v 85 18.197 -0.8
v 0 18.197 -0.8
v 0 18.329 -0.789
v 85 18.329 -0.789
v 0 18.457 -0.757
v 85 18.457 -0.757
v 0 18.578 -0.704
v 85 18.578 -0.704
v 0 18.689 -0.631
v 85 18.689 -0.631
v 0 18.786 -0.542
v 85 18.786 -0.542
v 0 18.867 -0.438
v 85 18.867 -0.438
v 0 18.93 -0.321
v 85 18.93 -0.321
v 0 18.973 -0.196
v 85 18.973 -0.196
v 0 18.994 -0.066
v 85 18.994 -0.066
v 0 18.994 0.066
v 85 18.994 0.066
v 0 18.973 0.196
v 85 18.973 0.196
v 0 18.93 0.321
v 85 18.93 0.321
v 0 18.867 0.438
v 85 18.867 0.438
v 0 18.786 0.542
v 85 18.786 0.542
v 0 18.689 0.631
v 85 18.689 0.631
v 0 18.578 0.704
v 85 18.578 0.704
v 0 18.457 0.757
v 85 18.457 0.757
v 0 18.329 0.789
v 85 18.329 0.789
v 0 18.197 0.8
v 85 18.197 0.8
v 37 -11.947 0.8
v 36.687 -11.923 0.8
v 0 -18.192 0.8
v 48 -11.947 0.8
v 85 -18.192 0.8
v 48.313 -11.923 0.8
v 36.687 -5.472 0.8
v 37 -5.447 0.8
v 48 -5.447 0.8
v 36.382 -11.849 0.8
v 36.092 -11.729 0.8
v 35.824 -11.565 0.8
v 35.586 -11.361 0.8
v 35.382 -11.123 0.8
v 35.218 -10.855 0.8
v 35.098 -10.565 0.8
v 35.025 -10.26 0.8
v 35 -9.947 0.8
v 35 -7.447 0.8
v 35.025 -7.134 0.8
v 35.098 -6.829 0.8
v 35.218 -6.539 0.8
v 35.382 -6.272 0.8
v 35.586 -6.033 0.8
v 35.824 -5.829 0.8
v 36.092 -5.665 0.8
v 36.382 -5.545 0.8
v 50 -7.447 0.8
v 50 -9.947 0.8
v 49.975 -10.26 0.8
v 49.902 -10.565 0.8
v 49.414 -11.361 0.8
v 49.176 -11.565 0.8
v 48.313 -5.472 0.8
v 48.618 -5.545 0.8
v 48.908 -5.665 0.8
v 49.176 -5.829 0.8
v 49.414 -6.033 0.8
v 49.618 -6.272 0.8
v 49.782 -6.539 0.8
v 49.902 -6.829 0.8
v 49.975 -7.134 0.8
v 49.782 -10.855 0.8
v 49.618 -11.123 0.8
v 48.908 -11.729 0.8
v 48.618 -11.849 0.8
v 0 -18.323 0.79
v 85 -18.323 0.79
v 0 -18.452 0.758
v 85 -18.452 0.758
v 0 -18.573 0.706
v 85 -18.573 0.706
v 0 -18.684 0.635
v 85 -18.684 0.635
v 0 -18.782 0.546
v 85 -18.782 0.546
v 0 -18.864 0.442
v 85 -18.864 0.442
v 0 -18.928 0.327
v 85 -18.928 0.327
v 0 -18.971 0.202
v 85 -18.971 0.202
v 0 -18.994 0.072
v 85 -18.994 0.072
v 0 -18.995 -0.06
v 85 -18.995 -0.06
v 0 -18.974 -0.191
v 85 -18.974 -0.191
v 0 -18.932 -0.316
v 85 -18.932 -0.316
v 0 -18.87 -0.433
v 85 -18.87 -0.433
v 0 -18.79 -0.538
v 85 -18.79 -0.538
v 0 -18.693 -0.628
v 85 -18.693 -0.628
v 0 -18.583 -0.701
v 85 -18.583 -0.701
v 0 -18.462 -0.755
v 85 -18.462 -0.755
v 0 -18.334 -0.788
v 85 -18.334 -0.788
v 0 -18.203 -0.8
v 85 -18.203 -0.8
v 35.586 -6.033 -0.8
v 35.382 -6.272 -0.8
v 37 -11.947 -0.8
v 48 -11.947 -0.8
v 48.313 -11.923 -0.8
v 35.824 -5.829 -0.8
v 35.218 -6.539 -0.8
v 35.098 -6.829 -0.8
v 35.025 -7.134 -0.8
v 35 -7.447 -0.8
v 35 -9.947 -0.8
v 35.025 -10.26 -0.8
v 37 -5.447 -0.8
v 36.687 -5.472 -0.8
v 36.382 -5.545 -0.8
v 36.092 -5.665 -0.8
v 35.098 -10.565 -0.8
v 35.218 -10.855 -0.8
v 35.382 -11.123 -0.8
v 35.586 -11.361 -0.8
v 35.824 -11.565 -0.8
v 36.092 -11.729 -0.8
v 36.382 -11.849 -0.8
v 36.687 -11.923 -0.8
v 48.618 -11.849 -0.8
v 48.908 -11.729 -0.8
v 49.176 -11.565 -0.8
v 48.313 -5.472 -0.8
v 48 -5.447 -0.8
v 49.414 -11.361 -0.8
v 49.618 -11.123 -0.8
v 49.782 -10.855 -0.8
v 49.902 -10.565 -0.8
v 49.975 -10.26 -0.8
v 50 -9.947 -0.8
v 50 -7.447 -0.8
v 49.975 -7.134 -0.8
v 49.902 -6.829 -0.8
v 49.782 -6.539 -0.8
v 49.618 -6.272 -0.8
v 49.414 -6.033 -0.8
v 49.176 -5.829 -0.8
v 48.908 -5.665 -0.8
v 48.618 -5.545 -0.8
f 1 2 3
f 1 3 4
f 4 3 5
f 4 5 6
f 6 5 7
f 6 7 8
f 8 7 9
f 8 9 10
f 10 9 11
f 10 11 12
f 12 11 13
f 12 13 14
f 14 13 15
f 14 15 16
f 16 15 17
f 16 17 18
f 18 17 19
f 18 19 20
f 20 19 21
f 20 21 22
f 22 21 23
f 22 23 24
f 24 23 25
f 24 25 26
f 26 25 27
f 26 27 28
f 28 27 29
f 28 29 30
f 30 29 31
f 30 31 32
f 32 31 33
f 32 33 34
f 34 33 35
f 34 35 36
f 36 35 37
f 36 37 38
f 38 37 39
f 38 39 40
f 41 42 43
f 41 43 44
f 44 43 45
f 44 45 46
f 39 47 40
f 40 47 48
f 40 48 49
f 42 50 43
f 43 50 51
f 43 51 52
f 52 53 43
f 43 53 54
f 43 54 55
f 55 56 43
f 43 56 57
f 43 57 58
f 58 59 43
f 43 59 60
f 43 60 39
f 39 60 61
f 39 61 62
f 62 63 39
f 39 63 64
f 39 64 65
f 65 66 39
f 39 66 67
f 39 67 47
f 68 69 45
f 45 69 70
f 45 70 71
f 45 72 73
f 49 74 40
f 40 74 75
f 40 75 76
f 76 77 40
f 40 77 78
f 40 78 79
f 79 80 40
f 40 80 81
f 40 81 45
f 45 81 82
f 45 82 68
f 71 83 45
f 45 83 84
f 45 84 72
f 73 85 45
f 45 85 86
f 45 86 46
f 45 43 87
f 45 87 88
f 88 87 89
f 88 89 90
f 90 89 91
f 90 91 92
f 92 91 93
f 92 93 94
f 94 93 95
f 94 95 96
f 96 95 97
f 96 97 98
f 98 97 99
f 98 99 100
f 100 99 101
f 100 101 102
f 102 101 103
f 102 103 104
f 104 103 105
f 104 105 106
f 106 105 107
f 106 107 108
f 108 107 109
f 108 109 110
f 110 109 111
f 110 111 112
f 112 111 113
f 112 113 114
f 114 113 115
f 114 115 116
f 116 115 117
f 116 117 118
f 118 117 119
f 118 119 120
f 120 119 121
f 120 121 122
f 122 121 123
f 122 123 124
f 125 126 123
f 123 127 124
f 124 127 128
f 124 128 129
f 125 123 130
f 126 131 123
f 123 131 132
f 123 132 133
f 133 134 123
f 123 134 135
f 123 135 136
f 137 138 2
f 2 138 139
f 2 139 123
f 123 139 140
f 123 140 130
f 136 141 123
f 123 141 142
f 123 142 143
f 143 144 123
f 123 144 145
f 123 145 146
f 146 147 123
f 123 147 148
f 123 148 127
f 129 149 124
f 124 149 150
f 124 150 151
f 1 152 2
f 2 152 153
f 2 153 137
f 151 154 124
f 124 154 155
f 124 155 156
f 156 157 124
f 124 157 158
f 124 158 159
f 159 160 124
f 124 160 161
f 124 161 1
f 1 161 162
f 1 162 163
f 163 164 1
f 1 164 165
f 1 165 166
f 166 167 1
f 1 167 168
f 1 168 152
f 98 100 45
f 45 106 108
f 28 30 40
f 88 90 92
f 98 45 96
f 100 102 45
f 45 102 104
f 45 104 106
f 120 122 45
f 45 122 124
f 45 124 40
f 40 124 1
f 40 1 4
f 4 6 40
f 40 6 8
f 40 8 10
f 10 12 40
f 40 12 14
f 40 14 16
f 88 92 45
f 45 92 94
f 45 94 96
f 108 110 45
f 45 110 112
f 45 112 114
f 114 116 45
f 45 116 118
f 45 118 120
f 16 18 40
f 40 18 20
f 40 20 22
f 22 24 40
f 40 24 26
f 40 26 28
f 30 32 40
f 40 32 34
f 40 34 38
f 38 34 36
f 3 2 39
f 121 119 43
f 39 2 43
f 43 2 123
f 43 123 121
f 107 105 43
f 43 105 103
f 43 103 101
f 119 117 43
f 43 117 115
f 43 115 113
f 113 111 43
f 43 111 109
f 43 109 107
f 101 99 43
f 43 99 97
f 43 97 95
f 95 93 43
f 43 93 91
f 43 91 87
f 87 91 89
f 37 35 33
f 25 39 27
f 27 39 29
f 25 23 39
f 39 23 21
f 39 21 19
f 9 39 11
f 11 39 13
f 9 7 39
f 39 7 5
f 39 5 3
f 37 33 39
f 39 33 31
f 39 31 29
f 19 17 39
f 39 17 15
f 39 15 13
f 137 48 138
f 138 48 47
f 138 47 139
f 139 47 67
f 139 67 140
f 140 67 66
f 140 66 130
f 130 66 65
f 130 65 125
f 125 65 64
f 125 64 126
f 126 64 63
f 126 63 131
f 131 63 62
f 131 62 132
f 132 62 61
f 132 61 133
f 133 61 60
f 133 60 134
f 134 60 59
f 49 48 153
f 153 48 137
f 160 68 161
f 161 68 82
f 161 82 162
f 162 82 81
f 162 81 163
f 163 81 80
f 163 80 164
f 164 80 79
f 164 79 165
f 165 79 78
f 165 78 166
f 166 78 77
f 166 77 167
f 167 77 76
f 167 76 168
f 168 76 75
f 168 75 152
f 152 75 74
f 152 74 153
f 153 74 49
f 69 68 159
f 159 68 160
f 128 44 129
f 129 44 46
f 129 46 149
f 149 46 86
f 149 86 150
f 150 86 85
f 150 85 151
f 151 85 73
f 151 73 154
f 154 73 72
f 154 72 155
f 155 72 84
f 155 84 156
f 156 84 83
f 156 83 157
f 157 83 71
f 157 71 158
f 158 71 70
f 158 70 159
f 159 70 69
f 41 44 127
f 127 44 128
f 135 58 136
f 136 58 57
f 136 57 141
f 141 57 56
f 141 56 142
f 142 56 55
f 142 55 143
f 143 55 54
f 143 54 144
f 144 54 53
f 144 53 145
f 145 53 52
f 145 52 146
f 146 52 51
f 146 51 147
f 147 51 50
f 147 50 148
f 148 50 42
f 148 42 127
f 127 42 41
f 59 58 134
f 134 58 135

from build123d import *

# Parameters (mm, degrees)
BOSS_EXTRUDE1_DEPTH = 85
CUT_EXTRUDE1_REACH  = 3.6


with BuildPart() as part:
    # Sketch1 → Boss-Extrude1 (new body)
    with BuildSketch(Plane(origin=(0, 0, 0), x_dir=(0, 0, -1), z_dir=(1, 0, 0))):
        with BuildLine():
            Line((0.800009932, 17.208466352), (0.800009932, -18.202808875))
            ThreePointArc((0.800009932, -18.202808875), (-0.005627681, -18.997171261), (-0.799990068, -18.191533648))
            Line((-0.799990068, -18.191533648), (-0.799990068, 18.197191125))
            ThreePointArc((-0.799990068, 18.197191125), (9.932e-06, 18.997191125), (0.800009932, 18.197191125))
            Line((0.800009932, 18.197191125), (0.800009932, 17.208466352))
        make_face()
    extrude(amount=BOSS_EXTRUDE1_DEPTH)

    # Sketch2 → Cut-Extrude1 (cut, up to next)
    with BuildSketch(Plane.XY.offset(0.799990068), mode=Mode.PRIVATE) as cut_extrude1_sk1:
        with BuildLine():
            Line((37, -5.447171261), (48, -5.447171261))
            ThreePointArc((48, -5.447171261), (49.414213562, -6.032957699), (50, -7.447171261))
            Line((50, -7.447171261), (50, -9.947171261))
            ThreePointArc((50, -9.947171261), (49.414213562, -11.361384824), (48, -11.947171261))
            Line((48, -11.947171261), (37, -11.947171261))
            ThreePointArc((37, -11.947171261), (35.585786438, -11.361384824), (35, -9.947171261))
            Line((35, -9.947171261), (35, -7.447171261))
            ThreePointArc((35, -7.447171261), (35.585786438, -6.032957699), (37, -5.447171261))
        make_face()
    cut_extrude1_tool1 = extrude(cut_extrude1_sk1.sketch, amount=-CUT_EXTRUDE1_REACH, mode=Mode.PRIVATE) & part.part
    add(cut_extrude1_tool1.solids().sort_by_distance((42.5, -8.697171, 0.79999))[0], mode=Mode.SUBTRACT)


solid = part.part
